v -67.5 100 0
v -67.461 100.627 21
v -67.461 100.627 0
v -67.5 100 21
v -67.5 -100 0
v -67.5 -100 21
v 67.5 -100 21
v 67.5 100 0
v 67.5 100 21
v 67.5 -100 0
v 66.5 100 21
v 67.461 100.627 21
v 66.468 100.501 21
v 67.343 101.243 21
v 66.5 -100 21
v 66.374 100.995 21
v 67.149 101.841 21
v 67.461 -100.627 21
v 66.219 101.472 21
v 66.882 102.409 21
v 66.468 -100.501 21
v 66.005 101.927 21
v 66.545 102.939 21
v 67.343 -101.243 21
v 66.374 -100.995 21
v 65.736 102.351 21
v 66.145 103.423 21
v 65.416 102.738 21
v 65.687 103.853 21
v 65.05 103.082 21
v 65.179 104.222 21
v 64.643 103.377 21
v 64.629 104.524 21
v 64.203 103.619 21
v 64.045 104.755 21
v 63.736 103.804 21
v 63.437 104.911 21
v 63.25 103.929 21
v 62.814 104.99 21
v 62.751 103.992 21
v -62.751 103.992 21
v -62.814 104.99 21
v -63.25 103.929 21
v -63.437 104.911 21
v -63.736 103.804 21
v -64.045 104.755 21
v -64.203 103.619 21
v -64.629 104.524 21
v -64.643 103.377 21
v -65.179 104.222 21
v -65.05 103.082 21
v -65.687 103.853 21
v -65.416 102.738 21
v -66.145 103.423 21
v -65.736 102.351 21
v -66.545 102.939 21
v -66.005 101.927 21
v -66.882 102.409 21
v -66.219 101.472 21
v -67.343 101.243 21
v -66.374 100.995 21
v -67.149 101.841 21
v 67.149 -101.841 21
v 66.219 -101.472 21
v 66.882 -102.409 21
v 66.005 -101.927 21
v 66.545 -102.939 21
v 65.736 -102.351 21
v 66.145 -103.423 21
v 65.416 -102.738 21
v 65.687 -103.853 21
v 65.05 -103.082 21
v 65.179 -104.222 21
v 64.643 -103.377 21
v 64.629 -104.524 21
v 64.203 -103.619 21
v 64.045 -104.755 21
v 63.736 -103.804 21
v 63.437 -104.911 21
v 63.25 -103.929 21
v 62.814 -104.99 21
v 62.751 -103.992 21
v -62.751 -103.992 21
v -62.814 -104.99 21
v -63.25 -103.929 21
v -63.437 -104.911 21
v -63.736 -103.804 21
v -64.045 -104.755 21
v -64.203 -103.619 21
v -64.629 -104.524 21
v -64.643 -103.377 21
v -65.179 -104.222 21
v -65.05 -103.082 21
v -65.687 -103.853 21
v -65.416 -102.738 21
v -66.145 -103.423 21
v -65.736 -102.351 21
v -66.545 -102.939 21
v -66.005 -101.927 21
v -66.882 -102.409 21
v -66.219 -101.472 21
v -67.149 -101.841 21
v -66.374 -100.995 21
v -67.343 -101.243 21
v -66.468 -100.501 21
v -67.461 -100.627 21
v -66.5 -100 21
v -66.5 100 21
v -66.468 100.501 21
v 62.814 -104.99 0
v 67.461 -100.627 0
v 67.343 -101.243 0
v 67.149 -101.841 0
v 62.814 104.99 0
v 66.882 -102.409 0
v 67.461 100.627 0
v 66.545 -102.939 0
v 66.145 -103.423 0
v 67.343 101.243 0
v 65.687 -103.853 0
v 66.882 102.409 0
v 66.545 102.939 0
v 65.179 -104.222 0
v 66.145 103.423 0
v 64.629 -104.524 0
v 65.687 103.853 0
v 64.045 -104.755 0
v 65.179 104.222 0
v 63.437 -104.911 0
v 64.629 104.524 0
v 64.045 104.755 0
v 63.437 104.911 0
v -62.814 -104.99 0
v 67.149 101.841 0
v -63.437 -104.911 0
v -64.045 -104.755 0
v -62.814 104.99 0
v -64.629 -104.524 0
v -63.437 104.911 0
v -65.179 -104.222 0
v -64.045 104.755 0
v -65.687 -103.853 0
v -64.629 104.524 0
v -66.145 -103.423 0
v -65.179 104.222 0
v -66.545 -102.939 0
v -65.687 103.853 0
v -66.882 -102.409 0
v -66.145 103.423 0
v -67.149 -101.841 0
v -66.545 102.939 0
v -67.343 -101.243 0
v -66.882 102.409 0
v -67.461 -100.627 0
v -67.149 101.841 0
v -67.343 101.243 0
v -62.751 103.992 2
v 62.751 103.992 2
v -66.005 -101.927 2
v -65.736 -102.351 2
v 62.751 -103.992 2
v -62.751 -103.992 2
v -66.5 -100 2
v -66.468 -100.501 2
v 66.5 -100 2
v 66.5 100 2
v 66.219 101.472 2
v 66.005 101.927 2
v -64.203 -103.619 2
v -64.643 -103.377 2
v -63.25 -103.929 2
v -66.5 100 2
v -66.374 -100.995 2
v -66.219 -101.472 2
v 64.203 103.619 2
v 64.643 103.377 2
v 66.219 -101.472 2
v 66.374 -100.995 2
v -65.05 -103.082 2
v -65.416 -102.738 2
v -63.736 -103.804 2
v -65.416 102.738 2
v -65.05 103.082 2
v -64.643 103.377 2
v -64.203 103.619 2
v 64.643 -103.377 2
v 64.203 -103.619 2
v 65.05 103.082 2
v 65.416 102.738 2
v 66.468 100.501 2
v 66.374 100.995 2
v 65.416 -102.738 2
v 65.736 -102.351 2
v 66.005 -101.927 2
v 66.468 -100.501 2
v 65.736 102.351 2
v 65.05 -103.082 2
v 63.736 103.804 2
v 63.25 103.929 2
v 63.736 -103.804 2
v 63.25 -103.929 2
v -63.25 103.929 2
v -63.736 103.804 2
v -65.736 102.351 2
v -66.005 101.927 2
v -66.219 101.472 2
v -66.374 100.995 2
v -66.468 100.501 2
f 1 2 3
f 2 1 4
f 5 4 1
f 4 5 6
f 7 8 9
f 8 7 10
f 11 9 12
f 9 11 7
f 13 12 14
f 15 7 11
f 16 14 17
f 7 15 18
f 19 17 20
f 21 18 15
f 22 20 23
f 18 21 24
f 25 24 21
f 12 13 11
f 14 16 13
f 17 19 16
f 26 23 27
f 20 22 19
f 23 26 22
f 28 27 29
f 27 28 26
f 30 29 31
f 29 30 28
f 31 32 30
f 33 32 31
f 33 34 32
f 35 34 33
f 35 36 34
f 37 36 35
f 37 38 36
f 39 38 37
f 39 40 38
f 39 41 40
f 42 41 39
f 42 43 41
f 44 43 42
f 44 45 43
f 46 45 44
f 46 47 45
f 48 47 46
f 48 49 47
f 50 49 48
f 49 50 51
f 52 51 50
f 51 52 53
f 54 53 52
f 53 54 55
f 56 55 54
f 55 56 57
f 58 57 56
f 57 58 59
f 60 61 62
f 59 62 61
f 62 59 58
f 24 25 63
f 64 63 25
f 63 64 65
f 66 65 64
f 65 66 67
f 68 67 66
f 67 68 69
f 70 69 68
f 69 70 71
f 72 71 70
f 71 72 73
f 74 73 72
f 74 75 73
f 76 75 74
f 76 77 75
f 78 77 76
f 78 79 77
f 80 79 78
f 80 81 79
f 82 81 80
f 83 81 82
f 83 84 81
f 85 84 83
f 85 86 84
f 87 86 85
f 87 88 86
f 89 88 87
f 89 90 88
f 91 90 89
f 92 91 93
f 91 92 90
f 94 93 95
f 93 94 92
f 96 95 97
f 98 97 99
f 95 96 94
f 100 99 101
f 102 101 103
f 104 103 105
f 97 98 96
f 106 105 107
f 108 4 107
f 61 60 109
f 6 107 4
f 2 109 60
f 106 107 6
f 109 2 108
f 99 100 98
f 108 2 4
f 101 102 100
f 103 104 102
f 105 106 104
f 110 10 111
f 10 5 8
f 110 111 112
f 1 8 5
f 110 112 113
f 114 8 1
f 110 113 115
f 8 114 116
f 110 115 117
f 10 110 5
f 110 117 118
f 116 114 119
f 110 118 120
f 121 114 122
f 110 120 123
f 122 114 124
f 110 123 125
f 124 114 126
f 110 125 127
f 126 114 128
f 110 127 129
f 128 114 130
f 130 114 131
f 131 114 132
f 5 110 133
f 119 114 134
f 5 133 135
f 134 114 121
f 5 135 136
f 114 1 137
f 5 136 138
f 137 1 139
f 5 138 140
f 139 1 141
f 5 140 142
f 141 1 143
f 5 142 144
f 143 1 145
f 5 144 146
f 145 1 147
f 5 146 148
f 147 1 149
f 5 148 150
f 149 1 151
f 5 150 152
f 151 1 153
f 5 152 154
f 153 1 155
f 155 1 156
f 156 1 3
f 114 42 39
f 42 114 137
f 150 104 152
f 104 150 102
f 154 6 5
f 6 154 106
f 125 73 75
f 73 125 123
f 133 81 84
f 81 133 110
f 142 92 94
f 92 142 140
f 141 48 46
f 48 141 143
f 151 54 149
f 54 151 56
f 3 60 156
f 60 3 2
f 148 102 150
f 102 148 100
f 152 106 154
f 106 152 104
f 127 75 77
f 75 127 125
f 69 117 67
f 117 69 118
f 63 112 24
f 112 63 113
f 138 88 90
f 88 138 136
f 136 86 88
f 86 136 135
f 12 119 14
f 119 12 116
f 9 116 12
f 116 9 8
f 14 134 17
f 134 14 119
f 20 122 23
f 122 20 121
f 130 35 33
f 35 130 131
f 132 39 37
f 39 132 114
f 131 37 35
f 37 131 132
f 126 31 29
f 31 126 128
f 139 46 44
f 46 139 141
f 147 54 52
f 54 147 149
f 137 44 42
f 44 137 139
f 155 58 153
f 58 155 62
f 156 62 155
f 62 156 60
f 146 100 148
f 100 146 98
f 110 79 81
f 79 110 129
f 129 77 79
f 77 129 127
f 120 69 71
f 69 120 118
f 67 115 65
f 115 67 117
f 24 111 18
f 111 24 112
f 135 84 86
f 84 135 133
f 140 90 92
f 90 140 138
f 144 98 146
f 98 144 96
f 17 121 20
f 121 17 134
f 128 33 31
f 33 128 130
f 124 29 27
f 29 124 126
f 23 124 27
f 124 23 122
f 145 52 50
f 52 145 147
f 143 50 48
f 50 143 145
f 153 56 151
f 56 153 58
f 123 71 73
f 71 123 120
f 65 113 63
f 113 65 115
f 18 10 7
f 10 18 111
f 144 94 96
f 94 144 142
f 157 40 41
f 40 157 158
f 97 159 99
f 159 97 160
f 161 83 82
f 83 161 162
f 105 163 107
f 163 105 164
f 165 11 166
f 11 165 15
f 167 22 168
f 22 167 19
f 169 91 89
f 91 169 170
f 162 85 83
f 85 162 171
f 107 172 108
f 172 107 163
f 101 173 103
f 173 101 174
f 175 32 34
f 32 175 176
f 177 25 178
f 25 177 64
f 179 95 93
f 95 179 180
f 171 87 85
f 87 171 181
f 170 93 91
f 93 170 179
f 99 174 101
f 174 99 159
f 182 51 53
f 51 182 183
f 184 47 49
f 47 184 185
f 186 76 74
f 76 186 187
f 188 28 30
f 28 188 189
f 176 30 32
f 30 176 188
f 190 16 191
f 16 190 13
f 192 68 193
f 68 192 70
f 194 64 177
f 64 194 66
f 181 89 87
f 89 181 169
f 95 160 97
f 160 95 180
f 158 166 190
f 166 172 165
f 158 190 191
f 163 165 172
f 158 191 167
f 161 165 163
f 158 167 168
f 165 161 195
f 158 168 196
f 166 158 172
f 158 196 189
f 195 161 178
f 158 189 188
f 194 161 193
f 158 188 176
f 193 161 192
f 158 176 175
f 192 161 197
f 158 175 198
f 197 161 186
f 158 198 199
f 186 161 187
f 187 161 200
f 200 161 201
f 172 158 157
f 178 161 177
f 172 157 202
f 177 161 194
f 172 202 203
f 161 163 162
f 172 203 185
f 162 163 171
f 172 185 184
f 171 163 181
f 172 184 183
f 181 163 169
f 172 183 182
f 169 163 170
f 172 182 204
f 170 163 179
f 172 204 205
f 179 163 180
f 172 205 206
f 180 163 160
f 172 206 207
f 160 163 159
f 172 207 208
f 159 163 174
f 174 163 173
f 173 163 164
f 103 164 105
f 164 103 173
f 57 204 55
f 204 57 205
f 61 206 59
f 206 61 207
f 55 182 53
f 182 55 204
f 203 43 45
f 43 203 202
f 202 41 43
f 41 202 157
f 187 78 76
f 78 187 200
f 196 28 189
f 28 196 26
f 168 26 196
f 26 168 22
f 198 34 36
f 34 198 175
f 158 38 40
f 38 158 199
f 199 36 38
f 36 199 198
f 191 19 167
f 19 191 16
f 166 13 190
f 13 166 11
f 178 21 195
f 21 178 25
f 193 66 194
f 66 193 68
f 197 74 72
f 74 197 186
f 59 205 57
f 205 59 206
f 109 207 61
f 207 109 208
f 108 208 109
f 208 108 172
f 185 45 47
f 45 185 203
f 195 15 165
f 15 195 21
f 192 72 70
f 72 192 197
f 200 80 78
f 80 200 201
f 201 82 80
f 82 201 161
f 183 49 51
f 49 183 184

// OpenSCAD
$fn = 50;


difference() {
	union() {
		hull() {
			translate(v = [-62.5000000000, 100.0000000000, 0]) {
				cylinder(h = 21, r = 5);
			}
			translate(v = [62.5000000000, 100.0000000000, 0]) {
				cylinder(h = 21, r = 5);
			}
			translate(v = [-62.5000000000, -100.0000000000, 0]) {
				cylinder(h = 21, r = 5);
			}
			translate(v = [62.5000000000, -100.0000000000, 0]) {
				cylinder(h = 21, r = 5);
			}
		}
	}
	union() {
		translate(v = [0, 0, 2]) {
			hull() {
				translate(v = [-62.5000000000, 100.0000000000, 0]) {
					cylinder(h = 19, r = 4);
				}
				translate(v = [62.5000000000, 100.0000000000, 0]) {
					cylinder(h = 19, r = 4);
				}
				translate(v = [-62.5000000000, -100.0000000000, 0]) {
					cylinder(h = 19, r = 4);
				}
				translate(v = [62.5000000000, -100.0000000000, 0]) {
					cylinder(h = 19, r = 4);
				}
			}
		}
	}
}
